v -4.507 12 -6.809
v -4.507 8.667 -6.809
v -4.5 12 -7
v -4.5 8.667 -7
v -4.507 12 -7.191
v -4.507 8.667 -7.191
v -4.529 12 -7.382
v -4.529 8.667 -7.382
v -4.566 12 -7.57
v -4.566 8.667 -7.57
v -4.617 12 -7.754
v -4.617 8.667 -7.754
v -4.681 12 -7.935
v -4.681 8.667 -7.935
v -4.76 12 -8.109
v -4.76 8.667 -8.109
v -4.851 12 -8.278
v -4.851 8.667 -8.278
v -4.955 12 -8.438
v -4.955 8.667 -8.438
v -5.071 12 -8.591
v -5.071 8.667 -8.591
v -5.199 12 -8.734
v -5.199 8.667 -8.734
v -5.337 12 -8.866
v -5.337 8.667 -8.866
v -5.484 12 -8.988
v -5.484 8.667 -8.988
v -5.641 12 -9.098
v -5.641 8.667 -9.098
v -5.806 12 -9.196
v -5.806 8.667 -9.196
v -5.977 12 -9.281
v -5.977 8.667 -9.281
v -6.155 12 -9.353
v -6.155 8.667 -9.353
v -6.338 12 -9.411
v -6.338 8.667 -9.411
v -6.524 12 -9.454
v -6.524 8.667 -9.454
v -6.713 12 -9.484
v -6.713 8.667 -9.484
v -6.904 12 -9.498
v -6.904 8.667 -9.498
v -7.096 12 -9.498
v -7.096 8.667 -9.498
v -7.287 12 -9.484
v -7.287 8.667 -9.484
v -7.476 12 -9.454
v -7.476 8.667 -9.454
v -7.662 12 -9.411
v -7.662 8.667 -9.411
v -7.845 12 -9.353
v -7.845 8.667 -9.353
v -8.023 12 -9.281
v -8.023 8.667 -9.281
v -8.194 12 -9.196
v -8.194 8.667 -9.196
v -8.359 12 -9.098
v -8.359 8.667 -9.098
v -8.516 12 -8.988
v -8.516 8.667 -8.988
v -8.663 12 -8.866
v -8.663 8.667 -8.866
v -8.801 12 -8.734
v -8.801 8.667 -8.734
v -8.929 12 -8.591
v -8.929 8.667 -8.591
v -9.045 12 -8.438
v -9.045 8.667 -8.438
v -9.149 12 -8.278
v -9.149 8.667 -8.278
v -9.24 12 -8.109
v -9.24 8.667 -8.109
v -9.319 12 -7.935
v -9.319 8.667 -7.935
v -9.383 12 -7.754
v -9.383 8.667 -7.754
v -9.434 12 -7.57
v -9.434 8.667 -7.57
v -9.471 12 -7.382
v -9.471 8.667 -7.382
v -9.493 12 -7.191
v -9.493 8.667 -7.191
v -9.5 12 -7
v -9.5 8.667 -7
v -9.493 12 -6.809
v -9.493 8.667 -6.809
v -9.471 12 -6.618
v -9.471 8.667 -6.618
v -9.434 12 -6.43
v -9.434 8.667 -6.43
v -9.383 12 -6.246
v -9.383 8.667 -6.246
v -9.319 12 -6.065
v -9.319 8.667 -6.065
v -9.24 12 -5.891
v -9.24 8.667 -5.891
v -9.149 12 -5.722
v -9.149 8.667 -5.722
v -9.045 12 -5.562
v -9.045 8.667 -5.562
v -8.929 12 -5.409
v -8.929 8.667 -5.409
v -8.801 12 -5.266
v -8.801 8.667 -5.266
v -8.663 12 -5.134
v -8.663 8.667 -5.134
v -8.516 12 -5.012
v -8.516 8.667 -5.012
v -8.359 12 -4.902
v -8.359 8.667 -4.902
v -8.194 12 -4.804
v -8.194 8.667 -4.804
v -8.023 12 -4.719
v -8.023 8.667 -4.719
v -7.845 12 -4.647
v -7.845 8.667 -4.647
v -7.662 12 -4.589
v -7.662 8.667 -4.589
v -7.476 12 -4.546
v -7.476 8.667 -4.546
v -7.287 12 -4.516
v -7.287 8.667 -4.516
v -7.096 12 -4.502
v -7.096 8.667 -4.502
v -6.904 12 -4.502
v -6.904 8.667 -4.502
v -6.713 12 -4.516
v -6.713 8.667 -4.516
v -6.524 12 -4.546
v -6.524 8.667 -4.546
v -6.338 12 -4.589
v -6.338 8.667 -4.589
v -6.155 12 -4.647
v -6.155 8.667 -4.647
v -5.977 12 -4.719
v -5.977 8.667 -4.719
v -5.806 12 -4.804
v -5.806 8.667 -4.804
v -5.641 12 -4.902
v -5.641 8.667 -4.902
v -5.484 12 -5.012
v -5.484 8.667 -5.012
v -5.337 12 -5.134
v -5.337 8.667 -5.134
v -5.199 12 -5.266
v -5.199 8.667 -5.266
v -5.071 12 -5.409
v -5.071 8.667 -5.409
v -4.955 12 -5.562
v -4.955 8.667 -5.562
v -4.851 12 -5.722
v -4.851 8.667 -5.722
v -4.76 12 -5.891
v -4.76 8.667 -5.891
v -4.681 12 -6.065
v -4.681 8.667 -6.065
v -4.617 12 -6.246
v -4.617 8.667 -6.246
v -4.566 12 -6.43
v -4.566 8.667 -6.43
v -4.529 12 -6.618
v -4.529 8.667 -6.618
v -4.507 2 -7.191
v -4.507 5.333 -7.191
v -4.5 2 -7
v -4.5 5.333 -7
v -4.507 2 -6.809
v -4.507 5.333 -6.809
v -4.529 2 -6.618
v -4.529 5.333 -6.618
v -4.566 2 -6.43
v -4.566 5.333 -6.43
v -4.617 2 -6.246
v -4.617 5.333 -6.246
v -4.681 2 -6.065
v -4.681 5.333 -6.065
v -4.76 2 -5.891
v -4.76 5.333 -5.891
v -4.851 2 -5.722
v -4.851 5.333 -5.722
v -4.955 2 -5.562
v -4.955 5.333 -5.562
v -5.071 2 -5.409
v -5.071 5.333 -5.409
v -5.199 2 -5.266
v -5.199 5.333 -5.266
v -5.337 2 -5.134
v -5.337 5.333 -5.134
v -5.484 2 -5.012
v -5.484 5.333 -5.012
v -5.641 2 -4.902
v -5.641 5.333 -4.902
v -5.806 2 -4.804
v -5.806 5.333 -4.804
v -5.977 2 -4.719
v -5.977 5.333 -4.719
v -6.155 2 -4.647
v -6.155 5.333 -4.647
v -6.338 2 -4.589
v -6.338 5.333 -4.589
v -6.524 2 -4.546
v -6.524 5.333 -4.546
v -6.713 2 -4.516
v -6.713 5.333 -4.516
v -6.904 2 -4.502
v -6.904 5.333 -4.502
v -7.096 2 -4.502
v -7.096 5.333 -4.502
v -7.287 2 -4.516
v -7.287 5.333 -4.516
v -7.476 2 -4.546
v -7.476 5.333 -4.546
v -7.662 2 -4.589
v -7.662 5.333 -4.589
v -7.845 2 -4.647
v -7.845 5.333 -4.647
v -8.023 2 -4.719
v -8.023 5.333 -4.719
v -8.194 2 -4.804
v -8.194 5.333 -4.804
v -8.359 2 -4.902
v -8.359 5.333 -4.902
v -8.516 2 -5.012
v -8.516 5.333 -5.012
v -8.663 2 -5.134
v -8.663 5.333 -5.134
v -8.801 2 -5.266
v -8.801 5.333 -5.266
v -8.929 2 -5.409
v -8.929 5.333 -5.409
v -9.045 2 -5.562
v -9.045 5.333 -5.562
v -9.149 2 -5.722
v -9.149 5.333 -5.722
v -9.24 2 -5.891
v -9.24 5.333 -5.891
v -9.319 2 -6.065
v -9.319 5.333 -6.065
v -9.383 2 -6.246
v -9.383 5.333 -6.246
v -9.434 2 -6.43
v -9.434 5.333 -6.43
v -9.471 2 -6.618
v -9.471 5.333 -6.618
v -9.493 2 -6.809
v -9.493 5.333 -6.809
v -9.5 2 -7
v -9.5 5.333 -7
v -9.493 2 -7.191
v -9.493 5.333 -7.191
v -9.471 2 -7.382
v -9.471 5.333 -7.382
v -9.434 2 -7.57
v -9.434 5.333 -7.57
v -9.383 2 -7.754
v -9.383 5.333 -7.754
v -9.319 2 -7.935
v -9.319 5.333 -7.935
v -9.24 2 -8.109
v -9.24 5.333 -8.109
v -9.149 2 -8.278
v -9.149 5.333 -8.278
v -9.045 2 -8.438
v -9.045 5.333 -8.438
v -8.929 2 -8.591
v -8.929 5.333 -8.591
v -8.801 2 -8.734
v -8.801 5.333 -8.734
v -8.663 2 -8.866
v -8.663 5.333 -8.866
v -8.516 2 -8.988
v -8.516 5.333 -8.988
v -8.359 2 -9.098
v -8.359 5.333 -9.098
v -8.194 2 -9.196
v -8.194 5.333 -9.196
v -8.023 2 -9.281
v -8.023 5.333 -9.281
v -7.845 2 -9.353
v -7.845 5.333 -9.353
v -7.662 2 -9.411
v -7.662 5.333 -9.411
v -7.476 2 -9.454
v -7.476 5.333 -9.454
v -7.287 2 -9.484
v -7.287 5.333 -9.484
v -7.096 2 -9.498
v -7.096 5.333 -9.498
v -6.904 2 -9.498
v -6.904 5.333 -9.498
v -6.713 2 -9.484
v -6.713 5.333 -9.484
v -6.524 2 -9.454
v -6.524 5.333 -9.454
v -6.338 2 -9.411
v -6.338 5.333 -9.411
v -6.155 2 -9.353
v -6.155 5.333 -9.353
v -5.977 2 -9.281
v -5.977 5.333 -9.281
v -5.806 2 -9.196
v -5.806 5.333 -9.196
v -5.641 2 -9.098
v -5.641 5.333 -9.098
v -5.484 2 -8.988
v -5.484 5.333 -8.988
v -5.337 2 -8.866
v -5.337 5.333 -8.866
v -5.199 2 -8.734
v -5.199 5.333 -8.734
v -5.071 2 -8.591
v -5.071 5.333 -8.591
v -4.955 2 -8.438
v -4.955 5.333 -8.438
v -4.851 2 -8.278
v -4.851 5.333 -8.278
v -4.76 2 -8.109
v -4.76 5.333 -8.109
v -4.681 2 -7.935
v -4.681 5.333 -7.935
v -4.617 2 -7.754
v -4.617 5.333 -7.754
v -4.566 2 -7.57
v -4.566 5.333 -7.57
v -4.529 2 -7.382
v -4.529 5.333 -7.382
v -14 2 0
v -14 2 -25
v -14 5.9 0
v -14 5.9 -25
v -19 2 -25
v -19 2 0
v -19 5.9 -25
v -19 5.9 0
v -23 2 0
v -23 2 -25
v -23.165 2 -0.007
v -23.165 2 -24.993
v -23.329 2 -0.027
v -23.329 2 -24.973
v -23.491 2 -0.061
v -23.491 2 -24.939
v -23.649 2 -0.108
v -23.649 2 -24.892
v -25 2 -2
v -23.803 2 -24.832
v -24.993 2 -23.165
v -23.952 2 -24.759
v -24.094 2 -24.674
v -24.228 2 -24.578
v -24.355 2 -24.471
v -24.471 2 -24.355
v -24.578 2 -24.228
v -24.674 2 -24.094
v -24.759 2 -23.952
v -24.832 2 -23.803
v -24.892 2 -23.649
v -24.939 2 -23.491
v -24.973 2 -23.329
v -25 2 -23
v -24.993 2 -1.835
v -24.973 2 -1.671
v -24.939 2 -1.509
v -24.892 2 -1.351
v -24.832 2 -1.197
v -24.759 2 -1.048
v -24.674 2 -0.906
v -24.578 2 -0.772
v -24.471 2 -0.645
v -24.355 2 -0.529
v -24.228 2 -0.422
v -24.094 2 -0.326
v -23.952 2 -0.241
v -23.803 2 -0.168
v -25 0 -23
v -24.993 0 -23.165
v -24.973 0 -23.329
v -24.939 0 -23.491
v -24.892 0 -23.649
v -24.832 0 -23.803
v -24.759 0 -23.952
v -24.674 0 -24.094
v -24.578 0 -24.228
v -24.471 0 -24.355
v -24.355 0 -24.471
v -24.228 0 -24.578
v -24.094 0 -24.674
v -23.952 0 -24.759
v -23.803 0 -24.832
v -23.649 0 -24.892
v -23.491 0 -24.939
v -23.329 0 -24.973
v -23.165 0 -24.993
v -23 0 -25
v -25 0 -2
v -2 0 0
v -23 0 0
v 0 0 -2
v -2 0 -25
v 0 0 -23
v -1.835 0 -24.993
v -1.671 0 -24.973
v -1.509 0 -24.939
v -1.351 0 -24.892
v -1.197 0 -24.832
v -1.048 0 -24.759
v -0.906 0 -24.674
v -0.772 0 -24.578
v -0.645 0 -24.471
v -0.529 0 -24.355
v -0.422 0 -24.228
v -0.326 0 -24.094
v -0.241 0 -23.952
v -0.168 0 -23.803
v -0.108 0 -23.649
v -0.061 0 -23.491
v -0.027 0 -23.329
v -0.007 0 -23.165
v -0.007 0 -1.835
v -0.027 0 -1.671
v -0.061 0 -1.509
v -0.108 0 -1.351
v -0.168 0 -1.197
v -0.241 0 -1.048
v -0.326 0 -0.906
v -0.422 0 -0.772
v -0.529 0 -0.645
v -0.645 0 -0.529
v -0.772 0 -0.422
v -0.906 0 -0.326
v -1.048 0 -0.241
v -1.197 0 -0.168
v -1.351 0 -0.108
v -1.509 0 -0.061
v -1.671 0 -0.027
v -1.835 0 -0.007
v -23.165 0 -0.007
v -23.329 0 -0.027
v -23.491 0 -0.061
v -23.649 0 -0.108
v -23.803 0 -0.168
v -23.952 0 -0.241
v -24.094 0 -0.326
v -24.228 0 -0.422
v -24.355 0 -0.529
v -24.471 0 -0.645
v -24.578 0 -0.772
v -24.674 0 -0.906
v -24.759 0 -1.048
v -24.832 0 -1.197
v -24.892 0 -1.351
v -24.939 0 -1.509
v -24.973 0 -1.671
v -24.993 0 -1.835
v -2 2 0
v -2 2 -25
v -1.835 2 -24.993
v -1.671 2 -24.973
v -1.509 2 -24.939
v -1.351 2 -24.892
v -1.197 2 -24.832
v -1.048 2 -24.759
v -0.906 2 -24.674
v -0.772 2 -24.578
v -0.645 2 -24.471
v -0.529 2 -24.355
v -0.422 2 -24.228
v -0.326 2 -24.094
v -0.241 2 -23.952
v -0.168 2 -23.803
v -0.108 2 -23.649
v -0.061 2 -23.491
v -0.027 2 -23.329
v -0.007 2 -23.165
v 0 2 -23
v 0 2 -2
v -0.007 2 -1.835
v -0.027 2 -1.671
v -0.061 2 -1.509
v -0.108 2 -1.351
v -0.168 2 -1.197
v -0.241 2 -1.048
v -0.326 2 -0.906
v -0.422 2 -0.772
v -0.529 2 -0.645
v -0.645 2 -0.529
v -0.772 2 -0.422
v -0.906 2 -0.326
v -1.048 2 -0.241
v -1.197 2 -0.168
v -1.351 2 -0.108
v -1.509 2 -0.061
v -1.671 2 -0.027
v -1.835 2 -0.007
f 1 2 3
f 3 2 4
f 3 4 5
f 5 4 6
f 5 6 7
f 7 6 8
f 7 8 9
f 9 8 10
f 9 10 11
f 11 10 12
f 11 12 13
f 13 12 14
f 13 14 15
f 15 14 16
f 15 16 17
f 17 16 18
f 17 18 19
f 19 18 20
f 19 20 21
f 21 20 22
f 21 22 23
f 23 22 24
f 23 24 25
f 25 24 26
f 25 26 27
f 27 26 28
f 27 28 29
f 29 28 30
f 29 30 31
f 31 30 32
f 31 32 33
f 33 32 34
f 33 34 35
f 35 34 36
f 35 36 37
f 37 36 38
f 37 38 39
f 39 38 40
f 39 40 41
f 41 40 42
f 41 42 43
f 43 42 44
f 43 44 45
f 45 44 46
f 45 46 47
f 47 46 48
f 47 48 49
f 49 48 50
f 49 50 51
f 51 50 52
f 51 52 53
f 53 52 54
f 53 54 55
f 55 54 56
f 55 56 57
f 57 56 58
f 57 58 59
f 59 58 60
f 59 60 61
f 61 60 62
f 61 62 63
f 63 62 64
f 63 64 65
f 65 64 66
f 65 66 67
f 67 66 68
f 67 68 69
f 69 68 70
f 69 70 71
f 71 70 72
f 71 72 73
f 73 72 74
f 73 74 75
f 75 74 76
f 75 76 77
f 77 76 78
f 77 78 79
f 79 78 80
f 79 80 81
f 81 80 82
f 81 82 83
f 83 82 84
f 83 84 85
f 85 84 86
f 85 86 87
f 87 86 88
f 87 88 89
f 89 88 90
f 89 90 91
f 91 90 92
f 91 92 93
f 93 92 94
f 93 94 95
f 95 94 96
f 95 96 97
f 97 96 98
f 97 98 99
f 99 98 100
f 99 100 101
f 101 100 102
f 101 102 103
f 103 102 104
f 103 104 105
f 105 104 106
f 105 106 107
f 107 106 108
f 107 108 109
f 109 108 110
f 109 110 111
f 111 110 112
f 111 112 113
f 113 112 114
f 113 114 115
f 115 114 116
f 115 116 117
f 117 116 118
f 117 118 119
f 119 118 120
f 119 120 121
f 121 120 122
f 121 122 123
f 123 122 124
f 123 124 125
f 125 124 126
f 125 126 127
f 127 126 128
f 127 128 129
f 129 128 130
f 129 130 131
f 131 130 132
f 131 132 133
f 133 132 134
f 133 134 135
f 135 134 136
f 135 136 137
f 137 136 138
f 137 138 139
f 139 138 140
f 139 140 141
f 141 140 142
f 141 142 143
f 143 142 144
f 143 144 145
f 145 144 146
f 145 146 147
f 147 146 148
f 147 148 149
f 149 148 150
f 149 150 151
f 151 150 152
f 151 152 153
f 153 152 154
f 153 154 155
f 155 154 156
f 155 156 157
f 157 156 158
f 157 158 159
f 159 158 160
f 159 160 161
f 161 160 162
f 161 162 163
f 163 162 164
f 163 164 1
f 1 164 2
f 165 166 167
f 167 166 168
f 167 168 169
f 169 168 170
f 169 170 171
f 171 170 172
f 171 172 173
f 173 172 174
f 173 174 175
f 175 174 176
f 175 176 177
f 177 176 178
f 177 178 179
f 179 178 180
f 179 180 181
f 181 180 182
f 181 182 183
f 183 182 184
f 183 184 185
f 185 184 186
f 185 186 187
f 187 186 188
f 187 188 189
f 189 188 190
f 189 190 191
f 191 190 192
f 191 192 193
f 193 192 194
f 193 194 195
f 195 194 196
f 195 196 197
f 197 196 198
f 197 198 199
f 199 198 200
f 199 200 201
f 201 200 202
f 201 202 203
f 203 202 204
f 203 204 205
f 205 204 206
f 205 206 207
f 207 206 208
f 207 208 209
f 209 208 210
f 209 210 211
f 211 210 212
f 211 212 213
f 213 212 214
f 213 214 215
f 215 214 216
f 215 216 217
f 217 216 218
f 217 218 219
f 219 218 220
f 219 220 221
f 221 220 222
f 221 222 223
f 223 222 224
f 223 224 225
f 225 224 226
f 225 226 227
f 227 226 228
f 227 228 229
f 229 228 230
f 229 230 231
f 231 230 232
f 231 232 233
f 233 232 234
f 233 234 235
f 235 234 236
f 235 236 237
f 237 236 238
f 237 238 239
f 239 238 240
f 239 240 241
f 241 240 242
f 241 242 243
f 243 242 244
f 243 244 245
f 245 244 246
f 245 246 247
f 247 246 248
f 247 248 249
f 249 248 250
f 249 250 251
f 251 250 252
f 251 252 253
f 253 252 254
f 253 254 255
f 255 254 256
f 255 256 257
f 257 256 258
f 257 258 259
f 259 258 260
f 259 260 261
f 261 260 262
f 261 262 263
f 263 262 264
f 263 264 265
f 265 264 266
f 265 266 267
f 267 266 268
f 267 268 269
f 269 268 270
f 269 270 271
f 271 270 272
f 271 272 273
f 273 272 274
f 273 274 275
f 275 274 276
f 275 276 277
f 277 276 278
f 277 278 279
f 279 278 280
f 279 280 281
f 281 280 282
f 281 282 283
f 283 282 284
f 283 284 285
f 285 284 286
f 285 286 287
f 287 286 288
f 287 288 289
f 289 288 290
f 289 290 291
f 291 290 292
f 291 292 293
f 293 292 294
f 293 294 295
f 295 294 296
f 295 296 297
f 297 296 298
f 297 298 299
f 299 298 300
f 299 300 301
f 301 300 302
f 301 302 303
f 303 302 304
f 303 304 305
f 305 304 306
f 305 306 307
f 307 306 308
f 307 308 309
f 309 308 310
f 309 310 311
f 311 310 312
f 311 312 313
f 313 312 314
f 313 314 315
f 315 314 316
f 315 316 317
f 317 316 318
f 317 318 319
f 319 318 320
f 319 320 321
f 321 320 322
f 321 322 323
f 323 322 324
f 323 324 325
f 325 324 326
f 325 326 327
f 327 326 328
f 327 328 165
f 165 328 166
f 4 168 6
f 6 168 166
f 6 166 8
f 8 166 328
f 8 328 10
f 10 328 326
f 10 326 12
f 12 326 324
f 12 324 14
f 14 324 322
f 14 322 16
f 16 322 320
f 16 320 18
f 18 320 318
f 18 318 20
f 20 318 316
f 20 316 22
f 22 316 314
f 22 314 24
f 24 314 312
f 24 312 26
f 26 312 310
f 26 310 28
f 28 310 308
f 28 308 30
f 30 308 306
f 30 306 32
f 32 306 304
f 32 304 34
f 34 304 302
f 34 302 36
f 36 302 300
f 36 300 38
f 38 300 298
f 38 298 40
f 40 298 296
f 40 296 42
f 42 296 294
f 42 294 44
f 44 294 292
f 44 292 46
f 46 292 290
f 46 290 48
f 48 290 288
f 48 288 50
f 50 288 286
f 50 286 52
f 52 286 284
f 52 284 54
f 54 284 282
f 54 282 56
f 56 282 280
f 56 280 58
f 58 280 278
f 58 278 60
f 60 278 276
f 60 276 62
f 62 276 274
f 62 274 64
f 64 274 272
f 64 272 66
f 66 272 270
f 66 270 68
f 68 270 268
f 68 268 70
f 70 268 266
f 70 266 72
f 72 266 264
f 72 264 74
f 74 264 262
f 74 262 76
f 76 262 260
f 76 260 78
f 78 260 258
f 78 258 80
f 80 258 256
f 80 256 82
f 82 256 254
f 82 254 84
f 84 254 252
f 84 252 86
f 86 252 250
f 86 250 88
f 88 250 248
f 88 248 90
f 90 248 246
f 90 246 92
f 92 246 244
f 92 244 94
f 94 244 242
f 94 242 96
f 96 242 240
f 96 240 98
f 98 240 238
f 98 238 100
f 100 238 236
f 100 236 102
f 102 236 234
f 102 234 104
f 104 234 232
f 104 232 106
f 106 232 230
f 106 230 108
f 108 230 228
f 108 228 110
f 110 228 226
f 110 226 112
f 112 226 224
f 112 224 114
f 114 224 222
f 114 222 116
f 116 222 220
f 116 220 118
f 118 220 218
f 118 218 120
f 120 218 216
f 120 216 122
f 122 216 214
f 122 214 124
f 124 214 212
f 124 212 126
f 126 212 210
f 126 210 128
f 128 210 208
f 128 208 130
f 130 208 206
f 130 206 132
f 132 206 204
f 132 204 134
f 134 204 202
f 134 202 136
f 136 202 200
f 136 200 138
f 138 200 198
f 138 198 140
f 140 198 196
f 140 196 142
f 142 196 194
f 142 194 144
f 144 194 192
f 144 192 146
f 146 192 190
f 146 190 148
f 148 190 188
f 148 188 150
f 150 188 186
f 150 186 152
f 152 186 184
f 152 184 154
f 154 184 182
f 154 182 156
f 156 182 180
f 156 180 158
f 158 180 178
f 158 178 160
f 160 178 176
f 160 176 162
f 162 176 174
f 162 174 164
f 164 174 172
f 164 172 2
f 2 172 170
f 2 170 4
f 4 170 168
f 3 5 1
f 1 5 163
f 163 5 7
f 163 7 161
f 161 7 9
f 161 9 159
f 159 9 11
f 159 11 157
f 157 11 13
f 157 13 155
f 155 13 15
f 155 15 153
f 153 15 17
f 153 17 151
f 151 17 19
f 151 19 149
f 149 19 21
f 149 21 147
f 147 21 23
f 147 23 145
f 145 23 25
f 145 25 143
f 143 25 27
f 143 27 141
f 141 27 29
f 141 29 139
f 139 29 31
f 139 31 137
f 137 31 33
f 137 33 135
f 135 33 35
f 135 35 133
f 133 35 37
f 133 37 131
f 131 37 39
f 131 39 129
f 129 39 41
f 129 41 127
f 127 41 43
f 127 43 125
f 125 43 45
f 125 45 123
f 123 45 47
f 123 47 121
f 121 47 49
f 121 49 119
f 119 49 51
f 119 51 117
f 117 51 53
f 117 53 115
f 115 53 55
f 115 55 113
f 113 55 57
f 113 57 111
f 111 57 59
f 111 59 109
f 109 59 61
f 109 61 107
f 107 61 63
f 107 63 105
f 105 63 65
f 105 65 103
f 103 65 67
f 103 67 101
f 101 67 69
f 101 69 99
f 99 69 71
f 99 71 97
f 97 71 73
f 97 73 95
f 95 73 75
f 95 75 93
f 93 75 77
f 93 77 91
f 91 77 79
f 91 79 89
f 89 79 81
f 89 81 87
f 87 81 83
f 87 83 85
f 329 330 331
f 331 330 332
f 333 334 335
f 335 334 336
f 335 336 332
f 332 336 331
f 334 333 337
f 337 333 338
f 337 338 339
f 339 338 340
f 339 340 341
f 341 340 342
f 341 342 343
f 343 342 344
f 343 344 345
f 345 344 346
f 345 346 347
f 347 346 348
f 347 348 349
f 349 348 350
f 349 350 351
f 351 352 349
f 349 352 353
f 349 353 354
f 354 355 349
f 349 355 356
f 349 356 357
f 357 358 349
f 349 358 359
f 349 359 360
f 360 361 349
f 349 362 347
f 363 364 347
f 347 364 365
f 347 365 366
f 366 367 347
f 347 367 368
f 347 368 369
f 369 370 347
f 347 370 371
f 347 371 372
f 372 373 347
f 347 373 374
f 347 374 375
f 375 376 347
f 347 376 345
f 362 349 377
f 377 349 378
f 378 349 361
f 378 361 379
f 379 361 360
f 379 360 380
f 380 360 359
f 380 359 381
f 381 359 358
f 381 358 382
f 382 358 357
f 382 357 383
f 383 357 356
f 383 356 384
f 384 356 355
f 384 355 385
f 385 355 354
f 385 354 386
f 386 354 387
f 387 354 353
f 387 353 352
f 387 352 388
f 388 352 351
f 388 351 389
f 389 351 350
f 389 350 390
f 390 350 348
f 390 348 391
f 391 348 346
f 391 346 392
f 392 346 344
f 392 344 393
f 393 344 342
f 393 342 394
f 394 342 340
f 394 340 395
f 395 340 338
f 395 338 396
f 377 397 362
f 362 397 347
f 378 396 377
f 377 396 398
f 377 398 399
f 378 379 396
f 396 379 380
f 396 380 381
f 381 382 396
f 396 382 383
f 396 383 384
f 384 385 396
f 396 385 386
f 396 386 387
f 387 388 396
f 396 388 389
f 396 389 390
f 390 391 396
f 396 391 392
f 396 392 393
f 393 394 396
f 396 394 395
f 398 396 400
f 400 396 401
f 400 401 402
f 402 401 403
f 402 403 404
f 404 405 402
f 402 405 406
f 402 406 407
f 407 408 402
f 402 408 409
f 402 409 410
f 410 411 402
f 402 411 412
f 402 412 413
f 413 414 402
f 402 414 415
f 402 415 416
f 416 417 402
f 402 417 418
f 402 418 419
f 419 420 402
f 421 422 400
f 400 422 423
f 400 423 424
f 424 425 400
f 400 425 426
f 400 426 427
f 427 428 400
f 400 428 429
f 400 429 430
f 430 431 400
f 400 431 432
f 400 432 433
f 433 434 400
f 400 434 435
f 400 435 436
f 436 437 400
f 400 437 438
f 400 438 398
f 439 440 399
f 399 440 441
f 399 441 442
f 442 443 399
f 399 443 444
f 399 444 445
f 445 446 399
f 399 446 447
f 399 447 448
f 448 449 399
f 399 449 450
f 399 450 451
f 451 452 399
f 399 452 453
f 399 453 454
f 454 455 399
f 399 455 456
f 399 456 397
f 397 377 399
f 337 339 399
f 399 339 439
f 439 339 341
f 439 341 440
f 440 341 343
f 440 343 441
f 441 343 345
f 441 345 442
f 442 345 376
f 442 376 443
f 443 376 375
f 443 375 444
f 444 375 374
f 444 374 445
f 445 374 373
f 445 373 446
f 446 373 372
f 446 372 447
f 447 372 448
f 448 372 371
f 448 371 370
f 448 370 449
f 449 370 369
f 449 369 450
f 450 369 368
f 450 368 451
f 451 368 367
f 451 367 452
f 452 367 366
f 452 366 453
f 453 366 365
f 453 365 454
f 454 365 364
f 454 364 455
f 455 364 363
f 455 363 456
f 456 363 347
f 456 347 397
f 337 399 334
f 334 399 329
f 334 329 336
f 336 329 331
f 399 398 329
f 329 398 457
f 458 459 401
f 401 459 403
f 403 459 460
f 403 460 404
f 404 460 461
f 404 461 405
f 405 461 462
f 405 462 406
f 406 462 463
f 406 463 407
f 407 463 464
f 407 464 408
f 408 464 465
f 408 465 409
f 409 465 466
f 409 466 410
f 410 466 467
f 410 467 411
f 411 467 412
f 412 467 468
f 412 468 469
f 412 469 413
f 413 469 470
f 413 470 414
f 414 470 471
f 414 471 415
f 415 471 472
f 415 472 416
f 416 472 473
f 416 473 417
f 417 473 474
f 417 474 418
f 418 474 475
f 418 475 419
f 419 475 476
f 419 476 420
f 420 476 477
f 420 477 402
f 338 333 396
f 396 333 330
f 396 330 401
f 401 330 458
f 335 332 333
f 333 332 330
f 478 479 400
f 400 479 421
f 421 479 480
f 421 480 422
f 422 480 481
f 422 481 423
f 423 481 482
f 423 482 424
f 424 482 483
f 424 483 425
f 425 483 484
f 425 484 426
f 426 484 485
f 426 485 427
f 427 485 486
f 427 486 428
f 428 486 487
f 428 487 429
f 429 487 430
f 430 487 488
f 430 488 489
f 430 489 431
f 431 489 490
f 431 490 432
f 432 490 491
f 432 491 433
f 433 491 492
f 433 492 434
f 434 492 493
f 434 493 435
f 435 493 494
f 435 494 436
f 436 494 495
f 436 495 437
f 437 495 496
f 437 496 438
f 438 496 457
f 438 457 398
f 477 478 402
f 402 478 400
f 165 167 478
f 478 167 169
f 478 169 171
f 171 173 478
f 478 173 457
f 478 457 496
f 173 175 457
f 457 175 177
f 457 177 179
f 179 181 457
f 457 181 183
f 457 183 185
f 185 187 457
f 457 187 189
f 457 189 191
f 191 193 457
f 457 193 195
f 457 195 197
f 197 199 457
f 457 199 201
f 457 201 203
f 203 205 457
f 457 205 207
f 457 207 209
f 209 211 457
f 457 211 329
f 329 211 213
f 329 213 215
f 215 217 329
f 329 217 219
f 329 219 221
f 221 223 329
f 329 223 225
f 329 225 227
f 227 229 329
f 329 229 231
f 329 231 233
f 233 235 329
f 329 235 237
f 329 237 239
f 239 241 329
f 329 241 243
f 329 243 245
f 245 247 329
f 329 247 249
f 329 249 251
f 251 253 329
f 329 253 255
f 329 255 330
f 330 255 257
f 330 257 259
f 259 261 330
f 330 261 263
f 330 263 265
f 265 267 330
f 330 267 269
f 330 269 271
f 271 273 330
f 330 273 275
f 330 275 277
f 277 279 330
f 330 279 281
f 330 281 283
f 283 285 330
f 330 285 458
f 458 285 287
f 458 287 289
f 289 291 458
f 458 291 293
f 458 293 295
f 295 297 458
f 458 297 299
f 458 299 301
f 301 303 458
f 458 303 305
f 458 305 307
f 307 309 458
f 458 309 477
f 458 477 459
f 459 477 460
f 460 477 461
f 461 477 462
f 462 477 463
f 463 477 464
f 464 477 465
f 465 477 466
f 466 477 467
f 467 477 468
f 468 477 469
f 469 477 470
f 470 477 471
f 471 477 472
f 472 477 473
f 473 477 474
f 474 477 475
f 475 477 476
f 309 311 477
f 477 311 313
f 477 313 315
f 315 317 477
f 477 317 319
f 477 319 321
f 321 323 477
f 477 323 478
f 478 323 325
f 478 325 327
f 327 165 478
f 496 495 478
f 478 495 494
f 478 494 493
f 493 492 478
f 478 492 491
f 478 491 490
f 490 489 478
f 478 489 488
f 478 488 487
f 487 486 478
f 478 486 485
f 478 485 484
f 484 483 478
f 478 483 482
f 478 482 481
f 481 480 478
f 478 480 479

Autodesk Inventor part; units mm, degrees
ref_plane "YZ Plane" through (0, 0, 0) normal (1, 0, 0) x (0, 1, 0)
ref_plane "XZ Plane" through (0, 0, 0) normal (0, 1, 0) x (-1, 0, 0)
ref_plane "XY Plane" through (0, 0, 0) normal (0, 0, 1) x (1, 0, 0)
sketch "Sketch1" plane through (0, 0, 0) normal (0, 1, 0) x (-1, 0, 0)
  line L0 (0, 0) -> (25, 0)
  line L1 (25, 0) -> (25, -25)
  line L2 (25, -25) -> (0, -25)
  line L3 (0, -25) -> (0, 0)
  dimension "d0" = 25
  dimension "d1" = 25
extrude "Extrusion1" add sketch "Sketch1" along normal blind 2
fillet "Fillet1" radius 2 4 edges at (0, 1, 0) (0, 1, -25) (-25, 1, 0) (-25, 1, -25)
sketch "Sketch2" plane through (0, 2, 0) normal (0, 1, 0) x (1, 0, 0)
  line L0 (-19, 25) -> (-19, 0)
  line L1 (-25, 23) -> (-25, 2) projected
  line L2 (-14, 25) -> (-14, 0)
  line L3 (-19, 25) -> (-14, 25)
  line L4 (-2, 25) -> (-23, 25) projected
  line L5 (-19, 0) -> (-14, 0)
  line L6 (-23, 0) -> (-2, 0) projected
  point P0 (0, 0)
  dimension "d5" = 6
  dimension "d6" = 5
extrude "Extrusion2" add sketch "Sketch2" along normal blind 3.9
sketch "Sketch4" plane through (0, 2, 0) normal (0, 1, 0) x (1, 0, 0)
  line L0 (-2, 25) -> (-14, 25) projected
  line L1 (0, 2) -> (0, 23) projected
  circle A0 centre (-7, 7) radius 2.5
  line L2 (-14, 0) -> (-2, 0) projected
  point P0 (0, 0)
  dimension "d11" = 5
  dimension "d14" = 7
  dimension "d15" = 7
extrude "Extrusion3" add sketch "Sketch4" along normal blind 10
properties part number "tapa_canyon_cambio"
